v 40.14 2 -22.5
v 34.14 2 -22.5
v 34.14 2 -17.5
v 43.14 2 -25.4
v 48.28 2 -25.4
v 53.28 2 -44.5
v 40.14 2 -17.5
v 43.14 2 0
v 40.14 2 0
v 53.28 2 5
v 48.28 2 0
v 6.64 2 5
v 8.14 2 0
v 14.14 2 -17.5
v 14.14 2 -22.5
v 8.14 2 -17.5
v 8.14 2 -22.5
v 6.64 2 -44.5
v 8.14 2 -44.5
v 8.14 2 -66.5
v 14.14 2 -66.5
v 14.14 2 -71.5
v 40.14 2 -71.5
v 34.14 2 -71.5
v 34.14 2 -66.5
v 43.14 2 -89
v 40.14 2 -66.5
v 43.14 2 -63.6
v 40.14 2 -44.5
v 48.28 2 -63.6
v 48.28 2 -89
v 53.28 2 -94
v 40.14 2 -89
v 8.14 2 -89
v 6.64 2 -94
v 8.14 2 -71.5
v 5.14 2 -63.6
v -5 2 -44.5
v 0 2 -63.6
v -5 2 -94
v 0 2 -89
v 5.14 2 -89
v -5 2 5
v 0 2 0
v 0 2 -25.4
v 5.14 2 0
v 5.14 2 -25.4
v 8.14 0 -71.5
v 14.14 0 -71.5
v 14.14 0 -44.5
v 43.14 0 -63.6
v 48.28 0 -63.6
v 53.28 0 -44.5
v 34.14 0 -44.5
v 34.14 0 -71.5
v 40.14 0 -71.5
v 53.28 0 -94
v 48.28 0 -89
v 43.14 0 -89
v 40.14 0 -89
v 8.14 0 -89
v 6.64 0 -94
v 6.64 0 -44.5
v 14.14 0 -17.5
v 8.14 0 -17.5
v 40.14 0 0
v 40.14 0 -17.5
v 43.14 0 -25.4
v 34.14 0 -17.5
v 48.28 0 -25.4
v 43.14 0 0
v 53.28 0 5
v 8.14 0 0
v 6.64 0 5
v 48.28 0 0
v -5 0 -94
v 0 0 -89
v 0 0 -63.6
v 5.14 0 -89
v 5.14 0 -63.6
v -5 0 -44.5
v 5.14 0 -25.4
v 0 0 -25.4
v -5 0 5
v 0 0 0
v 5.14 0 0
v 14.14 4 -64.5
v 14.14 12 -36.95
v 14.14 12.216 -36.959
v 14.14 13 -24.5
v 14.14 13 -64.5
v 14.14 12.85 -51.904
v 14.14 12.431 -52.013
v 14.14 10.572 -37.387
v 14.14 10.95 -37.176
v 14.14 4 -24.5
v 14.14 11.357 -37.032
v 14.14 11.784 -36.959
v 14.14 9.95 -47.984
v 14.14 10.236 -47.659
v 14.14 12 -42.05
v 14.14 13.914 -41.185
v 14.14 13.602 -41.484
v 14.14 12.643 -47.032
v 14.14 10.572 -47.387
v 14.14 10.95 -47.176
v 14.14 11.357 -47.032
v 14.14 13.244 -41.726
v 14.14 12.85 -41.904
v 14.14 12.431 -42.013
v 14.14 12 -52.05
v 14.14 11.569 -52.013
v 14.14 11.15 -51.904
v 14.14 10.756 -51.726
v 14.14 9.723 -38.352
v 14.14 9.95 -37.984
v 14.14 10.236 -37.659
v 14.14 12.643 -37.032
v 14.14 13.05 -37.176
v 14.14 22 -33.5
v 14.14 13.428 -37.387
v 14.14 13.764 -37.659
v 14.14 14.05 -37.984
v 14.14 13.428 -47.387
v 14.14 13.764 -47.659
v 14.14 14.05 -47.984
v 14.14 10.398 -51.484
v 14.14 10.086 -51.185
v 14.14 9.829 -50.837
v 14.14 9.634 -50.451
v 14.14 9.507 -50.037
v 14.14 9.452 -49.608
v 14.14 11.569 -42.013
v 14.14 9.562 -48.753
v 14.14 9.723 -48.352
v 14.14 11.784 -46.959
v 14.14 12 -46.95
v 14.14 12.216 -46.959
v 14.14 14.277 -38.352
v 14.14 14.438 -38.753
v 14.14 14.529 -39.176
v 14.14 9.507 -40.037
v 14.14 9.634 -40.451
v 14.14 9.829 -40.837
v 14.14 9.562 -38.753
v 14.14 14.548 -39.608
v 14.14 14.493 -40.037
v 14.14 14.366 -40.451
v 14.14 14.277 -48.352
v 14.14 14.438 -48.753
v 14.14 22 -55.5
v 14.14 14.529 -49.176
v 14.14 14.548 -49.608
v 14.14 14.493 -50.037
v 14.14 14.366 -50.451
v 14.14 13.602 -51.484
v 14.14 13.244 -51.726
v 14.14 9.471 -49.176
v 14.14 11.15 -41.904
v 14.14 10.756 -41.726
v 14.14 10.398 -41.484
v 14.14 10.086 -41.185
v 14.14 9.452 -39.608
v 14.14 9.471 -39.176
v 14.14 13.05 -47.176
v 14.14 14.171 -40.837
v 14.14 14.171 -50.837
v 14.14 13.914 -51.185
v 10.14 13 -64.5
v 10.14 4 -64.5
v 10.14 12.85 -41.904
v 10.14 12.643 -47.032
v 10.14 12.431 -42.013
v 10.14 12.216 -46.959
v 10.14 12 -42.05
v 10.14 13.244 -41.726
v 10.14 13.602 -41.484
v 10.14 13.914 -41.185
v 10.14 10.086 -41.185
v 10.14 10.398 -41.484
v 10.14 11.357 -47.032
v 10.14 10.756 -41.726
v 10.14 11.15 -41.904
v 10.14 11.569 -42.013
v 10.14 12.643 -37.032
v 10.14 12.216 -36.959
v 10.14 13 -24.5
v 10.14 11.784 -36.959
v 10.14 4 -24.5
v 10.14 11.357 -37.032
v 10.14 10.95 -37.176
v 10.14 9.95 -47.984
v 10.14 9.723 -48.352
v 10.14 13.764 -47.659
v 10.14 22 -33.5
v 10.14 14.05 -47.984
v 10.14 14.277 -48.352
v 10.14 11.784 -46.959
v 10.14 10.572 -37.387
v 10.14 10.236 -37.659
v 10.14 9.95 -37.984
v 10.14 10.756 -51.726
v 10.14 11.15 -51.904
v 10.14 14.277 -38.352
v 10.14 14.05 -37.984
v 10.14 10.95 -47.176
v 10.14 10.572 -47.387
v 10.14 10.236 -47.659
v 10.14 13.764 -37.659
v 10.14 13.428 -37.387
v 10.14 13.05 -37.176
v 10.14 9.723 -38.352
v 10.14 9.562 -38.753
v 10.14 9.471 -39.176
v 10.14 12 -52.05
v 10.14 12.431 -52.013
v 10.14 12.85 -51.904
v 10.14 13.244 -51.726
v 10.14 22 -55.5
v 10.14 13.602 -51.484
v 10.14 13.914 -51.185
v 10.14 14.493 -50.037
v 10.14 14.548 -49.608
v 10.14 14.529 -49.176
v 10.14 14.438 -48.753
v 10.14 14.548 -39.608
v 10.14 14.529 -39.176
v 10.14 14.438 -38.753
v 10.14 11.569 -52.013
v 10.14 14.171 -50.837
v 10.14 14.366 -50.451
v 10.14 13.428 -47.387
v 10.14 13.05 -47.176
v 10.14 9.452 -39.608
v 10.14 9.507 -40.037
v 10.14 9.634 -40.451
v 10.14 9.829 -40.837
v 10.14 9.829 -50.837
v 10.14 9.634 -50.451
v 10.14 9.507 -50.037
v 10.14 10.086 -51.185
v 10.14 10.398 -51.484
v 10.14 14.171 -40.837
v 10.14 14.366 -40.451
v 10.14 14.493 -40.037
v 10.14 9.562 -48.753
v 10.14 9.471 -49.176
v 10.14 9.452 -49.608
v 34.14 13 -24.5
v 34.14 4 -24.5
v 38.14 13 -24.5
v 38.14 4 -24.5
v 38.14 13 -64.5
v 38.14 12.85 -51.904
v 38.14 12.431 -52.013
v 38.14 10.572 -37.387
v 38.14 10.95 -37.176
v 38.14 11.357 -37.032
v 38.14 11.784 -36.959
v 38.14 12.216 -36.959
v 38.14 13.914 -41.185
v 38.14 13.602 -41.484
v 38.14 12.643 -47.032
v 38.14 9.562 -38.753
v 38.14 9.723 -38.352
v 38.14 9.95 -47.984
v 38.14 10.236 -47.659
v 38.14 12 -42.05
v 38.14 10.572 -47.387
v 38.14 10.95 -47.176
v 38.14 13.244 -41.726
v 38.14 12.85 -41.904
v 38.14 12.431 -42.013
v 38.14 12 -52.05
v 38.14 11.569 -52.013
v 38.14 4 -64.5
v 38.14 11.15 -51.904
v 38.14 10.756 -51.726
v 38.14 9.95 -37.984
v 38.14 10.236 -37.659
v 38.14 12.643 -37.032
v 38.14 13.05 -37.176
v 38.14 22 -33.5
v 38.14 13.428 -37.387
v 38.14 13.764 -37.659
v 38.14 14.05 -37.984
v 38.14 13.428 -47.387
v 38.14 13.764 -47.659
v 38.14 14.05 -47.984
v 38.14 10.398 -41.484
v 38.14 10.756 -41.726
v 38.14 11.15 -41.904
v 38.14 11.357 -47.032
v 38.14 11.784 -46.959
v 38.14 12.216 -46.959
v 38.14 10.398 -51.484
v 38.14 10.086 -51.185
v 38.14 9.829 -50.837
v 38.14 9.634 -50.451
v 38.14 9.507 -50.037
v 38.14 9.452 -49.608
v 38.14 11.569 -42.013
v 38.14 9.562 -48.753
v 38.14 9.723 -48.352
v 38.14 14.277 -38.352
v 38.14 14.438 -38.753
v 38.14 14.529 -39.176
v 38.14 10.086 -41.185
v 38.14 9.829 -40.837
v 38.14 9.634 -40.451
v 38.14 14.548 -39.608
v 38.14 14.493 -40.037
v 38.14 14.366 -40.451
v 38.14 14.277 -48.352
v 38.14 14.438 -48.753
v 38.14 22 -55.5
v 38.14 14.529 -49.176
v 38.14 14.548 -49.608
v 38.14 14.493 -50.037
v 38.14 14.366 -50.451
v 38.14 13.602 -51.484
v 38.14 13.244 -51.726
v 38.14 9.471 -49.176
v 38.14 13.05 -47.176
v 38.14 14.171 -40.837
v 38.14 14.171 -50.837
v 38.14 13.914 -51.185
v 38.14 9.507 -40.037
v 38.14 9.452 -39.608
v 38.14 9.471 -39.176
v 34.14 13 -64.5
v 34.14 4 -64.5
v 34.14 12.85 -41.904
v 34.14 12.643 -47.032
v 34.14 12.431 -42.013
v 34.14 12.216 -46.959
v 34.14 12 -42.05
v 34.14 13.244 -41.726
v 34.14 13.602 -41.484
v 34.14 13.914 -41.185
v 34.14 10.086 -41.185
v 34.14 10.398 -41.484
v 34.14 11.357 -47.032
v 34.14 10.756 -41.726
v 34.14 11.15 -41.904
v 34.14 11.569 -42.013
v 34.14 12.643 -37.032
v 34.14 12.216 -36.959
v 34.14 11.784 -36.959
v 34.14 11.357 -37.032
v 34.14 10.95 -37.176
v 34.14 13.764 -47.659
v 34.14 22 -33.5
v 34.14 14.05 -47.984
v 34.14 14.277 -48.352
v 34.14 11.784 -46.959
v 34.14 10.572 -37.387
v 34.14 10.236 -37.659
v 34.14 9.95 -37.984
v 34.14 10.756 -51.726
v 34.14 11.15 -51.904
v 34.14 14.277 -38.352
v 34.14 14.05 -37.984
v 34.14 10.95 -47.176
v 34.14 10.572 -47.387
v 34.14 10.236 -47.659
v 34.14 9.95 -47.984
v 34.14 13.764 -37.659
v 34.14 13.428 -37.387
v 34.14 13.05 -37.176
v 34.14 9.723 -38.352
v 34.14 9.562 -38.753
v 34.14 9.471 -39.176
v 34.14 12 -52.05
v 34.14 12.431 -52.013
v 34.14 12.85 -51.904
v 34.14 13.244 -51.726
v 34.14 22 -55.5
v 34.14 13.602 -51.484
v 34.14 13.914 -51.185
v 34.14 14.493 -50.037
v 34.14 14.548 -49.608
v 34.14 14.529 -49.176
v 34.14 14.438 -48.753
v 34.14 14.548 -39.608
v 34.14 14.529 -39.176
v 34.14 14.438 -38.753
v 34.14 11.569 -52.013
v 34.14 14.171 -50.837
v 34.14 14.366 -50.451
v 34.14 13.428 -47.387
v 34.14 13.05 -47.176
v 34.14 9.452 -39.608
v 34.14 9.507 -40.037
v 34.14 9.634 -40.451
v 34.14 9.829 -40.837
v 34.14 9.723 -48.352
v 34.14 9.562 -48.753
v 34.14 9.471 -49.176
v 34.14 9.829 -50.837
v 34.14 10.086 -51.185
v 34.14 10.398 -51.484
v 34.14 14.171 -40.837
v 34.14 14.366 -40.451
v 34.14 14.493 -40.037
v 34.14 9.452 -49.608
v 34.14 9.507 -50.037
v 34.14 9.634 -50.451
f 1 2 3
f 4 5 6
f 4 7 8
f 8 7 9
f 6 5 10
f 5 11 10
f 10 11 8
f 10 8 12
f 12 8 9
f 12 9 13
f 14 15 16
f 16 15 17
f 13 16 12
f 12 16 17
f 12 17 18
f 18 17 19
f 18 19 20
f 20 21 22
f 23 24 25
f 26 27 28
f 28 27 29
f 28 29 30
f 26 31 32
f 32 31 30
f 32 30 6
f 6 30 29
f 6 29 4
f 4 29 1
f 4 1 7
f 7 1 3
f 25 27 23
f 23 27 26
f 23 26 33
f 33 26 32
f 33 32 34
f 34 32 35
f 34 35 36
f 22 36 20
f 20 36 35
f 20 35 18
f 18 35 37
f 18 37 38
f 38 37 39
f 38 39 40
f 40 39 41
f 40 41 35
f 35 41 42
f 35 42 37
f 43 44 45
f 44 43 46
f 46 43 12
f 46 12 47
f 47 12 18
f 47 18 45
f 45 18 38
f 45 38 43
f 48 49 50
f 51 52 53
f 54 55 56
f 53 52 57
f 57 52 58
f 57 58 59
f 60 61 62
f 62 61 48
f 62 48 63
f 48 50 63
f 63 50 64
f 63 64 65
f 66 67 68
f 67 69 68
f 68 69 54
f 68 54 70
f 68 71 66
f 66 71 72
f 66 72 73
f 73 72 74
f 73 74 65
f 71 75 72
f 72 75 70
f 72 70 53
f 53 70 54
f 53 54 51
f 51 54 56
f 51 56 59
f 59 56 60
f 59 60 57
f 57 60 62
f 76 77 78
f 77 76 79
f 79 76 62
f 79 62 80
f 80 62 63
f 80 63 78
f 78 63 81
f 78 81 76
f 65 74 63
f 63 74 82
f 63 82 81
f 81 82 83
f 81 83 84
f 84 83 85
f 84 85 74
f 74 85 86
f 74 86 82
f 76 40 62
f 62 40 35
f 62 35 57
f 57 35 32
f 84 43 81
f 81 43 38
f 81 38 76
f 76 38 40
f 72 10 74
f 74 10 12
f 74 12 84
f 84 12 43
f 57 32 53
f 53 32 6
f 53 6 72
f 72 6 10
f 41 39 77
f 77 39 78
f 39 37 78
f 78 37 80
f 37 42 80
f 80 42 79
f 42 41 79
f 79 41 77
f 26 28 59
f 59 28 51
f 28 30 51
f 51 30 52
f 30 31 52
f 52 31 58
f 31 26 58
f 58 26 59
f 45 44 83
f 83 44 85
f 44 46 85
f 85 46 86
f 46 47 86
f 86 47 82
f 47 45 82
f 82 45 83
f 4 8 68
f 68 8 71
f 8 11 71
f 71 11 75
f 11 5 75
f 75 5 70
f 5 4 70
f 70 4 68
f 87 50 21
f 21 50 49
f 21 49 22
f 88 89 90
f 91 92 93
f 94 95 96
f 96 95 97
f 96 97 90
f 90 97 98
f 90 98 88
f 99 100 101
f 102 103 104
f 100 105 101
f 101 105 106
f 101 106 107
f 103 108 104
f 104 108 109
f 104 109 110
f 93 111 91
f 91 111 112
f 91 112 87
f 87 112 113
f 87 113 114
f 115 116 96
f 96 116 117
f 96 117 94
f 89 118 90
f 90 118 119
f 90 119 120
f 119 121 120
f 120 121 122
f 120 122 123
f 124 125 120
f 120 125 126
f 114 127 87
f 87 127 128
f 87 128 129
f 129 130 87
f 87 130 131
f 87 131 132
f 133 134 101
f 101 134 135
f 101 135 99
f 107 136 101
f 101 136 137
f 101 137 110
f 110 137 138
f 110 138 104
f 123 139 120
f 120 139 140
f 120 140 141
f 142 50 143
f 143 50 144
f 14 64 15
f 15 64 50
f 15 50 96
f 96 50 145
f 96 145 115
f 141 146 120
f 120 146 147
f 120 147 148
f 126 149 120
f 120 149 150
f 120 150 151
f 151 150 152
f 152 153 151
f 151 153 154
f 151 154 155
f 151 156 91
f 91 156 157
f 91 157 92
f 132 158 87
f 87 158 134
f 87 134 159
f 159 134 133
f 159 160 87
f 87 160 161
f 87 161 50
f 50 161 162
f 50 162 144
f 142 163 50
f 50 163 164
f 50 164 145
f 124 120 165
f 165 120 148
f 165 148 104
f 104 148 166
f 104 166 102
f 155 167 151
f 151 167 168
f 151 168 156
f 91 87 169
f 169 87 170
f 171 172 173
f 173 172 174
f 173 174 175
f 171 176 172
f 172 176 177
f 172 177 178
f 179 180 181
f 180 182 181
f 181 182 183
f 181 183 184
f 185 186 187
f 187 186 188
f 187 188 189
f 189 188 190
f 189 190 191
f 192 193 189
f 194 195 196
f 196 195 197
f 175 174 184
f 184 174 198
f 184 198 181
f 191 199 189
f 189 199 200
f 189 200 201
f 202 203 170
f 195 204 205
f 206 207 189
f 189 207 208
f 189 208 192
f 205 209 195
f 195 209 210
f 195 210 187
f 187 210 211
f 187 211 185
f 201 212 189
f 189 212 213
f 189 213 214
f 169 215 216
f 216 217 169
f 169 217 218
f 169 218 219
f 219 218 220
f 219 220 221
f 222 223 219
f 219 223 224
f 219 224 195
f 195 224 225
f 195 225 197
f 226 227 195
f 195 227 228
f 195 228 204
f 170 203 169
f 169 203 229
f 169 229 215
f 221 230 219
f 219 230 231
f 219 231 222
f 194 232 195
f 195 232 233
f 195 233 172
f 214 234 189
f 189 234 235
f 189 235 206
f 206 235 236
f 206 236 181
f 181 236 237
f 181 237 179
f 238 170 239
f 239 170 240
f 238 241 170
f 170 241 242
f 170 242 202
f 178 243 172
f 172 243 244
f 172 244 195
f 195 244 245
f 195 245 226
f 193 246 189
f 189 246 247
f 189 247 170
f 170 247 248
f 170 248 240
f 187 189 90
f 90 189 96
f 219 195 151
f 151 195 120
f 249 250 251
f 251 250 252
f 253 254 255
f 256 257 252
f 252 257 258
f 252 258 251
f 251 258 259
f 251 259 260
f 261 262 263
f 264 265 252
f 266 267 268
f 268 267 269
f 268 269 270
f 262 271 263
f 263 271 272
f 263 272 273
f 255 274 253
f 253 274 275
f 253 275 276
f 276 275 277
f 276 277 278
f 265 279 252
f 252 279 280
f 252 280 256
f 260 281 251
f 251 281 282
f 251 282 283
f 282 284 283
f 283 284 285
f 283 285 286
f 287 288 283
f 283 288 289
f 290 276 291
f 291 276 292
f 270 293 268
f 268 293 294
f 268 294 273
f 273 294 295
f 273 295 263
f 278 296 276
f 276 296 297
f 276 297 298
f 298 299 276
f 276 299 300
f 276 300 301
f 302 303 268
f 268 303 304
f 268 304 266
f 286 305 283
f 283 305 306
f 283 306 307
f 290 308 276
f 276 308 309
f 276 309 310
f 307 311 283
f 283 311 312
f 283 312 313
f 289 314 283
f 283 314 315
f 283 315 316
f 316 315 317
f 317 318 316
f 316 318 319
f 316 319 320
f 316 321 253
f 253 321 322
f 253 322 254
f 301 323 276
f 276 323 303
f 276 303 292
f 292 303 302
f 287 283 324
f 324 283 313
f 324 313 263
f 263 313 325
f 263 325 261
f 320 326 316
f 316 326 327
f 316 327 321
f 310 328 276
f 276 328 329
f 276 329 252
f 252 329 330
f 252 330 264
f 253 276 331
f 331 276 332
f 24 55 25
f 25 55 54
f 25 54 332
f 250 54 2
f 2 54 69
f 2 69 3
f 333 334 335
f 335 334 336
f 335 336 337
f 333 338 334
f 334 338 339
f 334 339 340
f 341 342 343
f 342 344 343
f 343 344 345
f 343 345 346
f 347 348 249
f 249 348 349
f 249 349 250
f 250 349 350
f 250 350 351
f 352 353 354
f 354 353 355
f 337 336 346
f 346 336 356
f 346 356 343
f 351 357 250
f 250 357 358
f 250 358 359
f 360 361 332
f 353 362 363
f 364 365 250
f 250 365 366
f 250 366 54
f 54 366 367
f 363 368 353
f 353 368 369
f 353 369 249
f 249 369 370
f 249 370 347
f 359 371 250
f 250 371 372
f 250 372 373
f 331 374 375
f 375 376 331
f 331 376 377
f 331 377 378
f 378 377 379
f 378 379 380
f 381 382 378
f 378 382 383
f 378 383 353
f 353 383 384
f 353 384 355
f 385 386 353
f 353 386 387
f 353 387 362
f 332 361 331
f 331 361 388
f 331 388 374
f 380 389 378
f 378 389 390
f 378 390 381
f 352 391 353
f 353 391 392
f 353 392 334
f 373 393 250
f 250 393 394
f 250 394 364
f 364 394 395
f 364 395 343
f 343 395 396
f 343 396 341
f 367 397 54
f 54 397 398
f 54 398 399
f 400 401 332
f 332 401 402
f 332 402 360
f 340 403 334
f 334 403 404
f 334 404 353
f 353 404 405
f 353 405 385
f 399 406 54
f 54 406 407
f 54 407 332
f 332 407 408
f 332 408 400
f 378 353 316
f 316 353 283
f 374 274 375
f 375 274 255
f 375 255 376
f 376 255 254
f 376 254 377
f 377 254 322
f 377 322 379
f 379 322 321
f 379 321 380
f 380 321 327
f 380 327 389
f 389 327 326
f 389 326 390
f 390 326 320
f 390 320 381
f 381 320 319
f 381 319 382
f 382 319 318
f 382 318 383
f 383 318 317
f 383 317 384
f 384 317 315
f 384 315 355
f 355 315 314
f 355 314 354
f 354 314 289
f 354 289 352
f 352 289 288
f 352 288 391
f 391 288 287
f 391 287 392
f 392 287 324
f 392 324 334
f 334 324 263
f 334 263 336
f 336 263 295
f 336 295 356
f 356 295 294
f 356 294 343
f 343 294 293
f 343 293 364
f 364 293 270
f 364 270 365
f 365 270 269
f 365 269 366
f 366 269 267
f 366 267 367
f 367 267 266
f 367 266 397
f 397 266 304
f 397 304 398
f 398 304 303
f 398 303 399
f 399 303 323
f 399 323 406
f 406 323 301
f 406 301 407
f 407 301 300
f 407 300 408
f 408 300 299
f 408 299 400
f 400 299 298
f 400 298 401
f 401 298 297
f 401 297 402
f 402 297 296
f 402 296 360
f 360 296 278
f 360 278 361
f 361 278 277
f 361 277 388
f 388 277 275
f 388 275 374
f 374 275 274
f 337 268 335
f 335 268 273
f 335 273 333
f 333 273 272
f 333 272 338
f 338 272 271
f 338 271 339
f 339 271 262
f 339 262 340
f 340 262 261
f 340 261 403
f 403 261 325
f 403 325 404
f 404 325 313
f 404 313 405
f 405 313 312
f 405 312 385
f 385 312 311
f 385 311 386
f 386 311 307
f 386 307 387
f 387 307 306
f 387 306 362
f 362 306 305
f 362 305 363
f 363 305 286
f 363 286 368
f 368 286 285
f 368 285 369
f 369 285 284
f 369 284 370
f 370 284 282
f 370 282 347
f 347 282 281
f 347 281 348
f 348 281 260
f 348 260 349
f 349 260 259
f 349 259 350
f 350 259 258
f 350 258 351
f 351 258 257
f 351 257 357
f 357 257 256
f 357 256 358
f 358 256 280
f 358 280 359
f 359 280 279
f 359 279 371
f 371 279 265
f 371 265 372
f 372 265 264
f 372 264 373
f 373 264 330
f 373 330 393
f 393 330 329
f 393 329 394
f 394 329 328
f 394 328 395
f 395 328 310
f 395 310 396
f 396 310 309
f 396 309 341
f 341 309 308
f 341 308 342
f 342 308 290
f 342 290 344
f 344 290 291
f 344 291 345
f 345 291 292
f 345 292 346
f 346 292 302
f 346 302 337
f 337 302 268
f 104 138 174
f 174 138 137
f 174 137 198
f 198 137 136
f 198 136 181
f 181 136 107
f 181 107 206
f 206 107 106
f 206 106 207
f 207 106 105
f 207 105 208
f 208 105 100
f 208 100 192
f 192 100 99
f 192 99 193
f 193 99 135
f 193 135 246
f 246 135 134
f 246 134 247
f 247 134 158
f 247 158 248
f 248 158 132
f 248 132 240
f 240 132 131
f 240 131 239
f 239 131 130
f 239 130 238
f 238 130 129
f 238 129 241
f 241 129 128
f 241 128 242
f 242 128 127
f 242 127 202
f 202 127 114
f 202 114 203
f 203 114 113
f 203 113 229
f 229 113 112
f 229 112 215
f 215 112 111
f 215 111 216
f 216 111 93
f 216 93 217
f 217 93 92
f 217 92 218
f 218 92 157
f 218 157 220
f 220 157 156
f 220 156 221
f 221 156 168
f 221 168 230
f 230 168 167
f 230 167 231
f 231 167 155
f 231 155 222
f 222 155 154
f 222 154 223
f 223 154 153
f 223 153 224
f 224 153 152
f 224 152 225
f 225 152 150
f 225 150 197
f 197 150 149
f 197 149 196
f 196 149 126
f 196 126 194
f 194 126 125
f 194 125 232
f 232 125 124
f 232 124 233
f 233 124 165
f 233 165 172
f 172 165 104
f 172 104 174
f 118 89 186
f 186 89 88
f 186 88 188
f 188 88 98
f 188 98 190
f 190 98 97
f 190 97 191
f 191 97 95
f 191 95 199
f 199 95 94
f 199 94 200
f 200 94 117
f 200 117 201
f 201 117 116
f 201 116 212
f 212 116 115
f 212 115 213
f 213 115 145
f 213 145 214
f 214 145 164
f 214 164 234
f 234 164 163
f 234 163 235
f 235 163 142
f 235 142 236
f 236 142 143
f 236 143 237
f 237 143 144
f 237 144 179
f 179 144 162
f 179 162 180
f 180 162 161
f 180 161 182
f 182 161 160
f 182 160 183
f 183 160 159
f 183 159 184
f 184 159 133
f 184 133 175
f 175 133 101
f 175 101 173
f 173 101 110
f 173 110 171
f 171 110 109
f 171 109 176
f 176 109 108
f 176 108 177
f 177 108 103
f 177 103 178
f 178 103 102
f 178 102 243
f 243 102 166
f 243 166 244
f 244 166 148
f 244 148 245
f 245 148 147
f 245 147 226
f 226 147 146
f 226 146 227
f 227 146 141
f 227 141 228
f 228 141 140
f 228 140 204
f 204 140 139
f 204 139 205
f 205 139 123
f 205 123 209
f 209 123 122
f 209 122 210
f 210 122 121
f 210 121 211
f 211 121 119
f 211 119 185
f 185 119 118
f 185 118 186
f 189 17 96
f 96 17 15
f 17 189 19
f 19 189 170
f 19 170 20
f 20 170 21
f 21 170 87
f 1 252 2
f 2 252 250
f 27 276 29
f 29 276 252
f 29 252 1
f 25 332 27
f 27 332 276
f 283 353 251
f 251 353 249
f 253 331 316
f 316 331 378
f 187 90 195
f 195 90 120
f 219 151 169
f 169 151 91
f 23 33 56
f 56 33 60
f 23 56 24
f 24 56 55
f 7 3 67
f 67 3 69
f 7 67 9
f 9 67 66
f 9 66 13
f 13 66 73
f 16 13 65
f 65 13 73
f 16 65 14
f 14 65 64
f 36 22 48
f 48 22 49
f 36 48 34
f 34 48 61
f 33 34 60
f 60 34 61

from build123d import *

# Parameters (mm, degrees)
SKETCH1_W           = 58.28
SKETCH1_H           = 99
SKETCH1_W_2         = 5.14
SKETCH1_H_2         = 25.4
BOSS_EXTRUDE1_DEPTH = 2
SKETCH2_W           = 4
SKETCH2_H           = 40
BOSS_EXTRUDE2_DEPTH = 20
CUT_EXTRUDE1_REACH  = 107.741
SKETCH3_R           = 2.55
CHAMFER1_SIZE       = 2
CUT_EXTRUDE2_REACH  = 107.741
CUT_EXTRUDE3_DEPTH  = 2


with BuildPart() as part:
    # Sketch1 → Boss-Extrude1 (new body)
    with BuildSketch(Plane(origin=(0, 0, 0), x_dir=(1, 0, 0), z_dir=(0, 1, 0))):
        with Locations((24.14, 44.5)):
            Rectangle(SKETCH1_W, SKETCH1_H)
        with Locations((2.57, 76.3)):
            Rectangle(SKETCH1_W_2, SKETCH1_H_2, mode=Mode.SUBTRACT)
        with Locations((45.71, 76.3)):
            Rectangle(SKETCH1_W_2, SKETCH1_H_2, mode=Mode.SUBTRACT)
        with Locations((2.57, 12.7)):
            Rectangle(SKETCH1_W_2, SKETCH1_H_2, mode=Mode.SUBTRACT)
        with Locations((45.71, 12.7)):
            Rectangle(SKETCH1_W_2, SKETCH1_H_2, mode=Mode.SUBTRACT)
    extrude(amount=BOSS_EXTRUDE1_DEPTH)

    # Sketch2 → Boss-Extrude2 (add)
    with BuildSketch(Plane(origin=(0, 2, 0), x_dir=(1, 0, 0), z_dir=(0, 1, 0))):
        with Locations((12.14, 44.5)):
            Rectangle(SKETCH2_W, SKETCH2_H)
        with Locations((36.14, 44.5)):
            Rectangle(SKETCH2_W, SKETCH2_H)
    extrude(amount=BOSS_EXTRUDE2_DEPTH)

    # Cut-Extrude1: up to this face of the body (flat: up to its plane)
    cut_extrude1_end = Plane(part.part.faces().sort_by_distance((10.14, 12, -44.5))[0])
    # Sketch3 → Cut-Extrude1 (cut, up to the picked face)
    with BuildSketch(Plane(origin=(38.14, 0, 0), x_dir=(0, 0, -1), z_dir=(1, 0, 0)), mode=Mode.PRIVATE) as cut_extrude1_sk1:
        with Locations((39.5, 12)):
            Circle(SKETCH3_R)
    cut_extrude1_tool1 = split(extrude(cut_extrude1_sk1.sketch, amount=-CUT_EXTRUDE1_REACH, mode=Mode.PRIVATE), bisect_by=cut_extrude1_end, keep=Keep.BOTH, mode=Mode.PRIVATE)
    # Sketch3 → Cut-Extrude1 (cut, up to the picked face)
    with BuildSketch(Plane(origin=(38.14, 0, 0), x_dir=(0, 0, -1), z_dir=(1, 0, 0)), mode=Mode.PRIVATE) as cut_extrude1_sk2:
        with Locations((49.5, 12)):
            Circle(SKETCH3_R)
    cut_extrude1_tool2 = split(extrude(cut_extrude1_sk2.sketch, amount=-CUT_EXTRUDE1_REACH, mode=Mode.PRIVATE), bisect_by=cut_extrude1_end, keep=Keep.BOTH, mode=Mode.PRIVATE)
    add(cut_extrude1_tool1.solids().sort_by(Axis((38.14, 12, -39.5), (-1, 0, 0)))[0], mode=Mode.SUBTRACT)
    add(cut_extrude1_tool2.solids().sort_by(Axis((38.14, 12, -49.5), (-1, 0, 0)))[0], mode=Mode.SUBTRACT)

    # Chamfer1
    chamfer1_edges = [part.edges().sort_by_distance(p)[0] for p in [
        (12.14, 2, -64.5),
        (10.14, 2, -44.5),
        (12.14, 2, -24.5),
        (36.14, 2, -24.5),
        (38.14, 2, -44.5),
        (36.14, 2, -64.5),
    ]]
    chamfer(chamfer1_edges, length=CHAMFER1_SIZE)

    # Cut-Extrude2: up to this face of the body (flat: up to its plane)
    cut_extrude2_end = Plane(part.part.faces().sort_by_distance((38.14, 13.060158725, -44.5))[0])
    # Sketch4 → Cut-Extrude2 (cut, up to the picked face)
    with BuildSketch(Plane.ZY.offset(-10.14), mode=Mode.PRIVATE) as cut_extrude2_sk1:
        Polygon((-55.5, 22), (-64.5, 13), (-64.5, 22), align=None)
    cut_extrude2_tool1 = split(extrude(cut_extrude2_sk1.sketch, amount=-CUT_EXTRUDE2_REACH, mode=Mode.PRIVATE), bisect_by=cut_extrude2_end, keep=Keep.BOTH, mode=Mode.PRIVATE)
    # Sketch4 → Cut-Extrude2 (cut, up to the picked face)
    with BuildSketch(Plane.ZY.offset(-10.14), mode=Mode.PRIVATE) as cut_extrude2_sk2:
        Polygon((-33.5, 22), (-24.5, 13), (-24.5, 22), align=None)
    cut_extrude2_tool2 = split(extrude(cut_extrude2_sk2.sketch, amount=-CUT_EXTRUDE2_REACH, mode=Mode.PRIVATE), bisect_by=cut_extrude2_end, keep=Keep.BOTH, mode=Mode.PRIVATE)
    add(cut_extrude2_tool1.solids().sort_by(Axis((10.14, 19, -61.5), (1, 0, 0)))[0], mode=Mode.SUBTRACT)
    add(cut_extrude2_tool2.solids().sort_by(Axis((10.14, 19, -27.5), (1, 0, 0)))[0], mode=Mode.SUBTRACT)

    # Sketch5 → Cut-Extrude3 (cut)
    with BuildSketch(Plane(origin=(0, 2, 0), x_dir=(1, 0, 0), z_dir=(0, 1, 0))):
        Polygon((34.14, 22.5), (34.14, 66.5), (34.14, 71.5), (40.14, 71.5), (40.14, 89), (8.14, 89), (8.14, 71.5), (14.14, 71.5), (14.14, 66.5), (14.14, 22.5), (14.14, 17.5), (8.14, 17.5), (8.14, 0), (40.14, 0), (40.14, 17.5), (34.14, 17.5), align=None)
    extrude(amount=-CUT_EXTRUDE3_DEPTH, mode=Mode.SUBTRACT)


solid = part.part
